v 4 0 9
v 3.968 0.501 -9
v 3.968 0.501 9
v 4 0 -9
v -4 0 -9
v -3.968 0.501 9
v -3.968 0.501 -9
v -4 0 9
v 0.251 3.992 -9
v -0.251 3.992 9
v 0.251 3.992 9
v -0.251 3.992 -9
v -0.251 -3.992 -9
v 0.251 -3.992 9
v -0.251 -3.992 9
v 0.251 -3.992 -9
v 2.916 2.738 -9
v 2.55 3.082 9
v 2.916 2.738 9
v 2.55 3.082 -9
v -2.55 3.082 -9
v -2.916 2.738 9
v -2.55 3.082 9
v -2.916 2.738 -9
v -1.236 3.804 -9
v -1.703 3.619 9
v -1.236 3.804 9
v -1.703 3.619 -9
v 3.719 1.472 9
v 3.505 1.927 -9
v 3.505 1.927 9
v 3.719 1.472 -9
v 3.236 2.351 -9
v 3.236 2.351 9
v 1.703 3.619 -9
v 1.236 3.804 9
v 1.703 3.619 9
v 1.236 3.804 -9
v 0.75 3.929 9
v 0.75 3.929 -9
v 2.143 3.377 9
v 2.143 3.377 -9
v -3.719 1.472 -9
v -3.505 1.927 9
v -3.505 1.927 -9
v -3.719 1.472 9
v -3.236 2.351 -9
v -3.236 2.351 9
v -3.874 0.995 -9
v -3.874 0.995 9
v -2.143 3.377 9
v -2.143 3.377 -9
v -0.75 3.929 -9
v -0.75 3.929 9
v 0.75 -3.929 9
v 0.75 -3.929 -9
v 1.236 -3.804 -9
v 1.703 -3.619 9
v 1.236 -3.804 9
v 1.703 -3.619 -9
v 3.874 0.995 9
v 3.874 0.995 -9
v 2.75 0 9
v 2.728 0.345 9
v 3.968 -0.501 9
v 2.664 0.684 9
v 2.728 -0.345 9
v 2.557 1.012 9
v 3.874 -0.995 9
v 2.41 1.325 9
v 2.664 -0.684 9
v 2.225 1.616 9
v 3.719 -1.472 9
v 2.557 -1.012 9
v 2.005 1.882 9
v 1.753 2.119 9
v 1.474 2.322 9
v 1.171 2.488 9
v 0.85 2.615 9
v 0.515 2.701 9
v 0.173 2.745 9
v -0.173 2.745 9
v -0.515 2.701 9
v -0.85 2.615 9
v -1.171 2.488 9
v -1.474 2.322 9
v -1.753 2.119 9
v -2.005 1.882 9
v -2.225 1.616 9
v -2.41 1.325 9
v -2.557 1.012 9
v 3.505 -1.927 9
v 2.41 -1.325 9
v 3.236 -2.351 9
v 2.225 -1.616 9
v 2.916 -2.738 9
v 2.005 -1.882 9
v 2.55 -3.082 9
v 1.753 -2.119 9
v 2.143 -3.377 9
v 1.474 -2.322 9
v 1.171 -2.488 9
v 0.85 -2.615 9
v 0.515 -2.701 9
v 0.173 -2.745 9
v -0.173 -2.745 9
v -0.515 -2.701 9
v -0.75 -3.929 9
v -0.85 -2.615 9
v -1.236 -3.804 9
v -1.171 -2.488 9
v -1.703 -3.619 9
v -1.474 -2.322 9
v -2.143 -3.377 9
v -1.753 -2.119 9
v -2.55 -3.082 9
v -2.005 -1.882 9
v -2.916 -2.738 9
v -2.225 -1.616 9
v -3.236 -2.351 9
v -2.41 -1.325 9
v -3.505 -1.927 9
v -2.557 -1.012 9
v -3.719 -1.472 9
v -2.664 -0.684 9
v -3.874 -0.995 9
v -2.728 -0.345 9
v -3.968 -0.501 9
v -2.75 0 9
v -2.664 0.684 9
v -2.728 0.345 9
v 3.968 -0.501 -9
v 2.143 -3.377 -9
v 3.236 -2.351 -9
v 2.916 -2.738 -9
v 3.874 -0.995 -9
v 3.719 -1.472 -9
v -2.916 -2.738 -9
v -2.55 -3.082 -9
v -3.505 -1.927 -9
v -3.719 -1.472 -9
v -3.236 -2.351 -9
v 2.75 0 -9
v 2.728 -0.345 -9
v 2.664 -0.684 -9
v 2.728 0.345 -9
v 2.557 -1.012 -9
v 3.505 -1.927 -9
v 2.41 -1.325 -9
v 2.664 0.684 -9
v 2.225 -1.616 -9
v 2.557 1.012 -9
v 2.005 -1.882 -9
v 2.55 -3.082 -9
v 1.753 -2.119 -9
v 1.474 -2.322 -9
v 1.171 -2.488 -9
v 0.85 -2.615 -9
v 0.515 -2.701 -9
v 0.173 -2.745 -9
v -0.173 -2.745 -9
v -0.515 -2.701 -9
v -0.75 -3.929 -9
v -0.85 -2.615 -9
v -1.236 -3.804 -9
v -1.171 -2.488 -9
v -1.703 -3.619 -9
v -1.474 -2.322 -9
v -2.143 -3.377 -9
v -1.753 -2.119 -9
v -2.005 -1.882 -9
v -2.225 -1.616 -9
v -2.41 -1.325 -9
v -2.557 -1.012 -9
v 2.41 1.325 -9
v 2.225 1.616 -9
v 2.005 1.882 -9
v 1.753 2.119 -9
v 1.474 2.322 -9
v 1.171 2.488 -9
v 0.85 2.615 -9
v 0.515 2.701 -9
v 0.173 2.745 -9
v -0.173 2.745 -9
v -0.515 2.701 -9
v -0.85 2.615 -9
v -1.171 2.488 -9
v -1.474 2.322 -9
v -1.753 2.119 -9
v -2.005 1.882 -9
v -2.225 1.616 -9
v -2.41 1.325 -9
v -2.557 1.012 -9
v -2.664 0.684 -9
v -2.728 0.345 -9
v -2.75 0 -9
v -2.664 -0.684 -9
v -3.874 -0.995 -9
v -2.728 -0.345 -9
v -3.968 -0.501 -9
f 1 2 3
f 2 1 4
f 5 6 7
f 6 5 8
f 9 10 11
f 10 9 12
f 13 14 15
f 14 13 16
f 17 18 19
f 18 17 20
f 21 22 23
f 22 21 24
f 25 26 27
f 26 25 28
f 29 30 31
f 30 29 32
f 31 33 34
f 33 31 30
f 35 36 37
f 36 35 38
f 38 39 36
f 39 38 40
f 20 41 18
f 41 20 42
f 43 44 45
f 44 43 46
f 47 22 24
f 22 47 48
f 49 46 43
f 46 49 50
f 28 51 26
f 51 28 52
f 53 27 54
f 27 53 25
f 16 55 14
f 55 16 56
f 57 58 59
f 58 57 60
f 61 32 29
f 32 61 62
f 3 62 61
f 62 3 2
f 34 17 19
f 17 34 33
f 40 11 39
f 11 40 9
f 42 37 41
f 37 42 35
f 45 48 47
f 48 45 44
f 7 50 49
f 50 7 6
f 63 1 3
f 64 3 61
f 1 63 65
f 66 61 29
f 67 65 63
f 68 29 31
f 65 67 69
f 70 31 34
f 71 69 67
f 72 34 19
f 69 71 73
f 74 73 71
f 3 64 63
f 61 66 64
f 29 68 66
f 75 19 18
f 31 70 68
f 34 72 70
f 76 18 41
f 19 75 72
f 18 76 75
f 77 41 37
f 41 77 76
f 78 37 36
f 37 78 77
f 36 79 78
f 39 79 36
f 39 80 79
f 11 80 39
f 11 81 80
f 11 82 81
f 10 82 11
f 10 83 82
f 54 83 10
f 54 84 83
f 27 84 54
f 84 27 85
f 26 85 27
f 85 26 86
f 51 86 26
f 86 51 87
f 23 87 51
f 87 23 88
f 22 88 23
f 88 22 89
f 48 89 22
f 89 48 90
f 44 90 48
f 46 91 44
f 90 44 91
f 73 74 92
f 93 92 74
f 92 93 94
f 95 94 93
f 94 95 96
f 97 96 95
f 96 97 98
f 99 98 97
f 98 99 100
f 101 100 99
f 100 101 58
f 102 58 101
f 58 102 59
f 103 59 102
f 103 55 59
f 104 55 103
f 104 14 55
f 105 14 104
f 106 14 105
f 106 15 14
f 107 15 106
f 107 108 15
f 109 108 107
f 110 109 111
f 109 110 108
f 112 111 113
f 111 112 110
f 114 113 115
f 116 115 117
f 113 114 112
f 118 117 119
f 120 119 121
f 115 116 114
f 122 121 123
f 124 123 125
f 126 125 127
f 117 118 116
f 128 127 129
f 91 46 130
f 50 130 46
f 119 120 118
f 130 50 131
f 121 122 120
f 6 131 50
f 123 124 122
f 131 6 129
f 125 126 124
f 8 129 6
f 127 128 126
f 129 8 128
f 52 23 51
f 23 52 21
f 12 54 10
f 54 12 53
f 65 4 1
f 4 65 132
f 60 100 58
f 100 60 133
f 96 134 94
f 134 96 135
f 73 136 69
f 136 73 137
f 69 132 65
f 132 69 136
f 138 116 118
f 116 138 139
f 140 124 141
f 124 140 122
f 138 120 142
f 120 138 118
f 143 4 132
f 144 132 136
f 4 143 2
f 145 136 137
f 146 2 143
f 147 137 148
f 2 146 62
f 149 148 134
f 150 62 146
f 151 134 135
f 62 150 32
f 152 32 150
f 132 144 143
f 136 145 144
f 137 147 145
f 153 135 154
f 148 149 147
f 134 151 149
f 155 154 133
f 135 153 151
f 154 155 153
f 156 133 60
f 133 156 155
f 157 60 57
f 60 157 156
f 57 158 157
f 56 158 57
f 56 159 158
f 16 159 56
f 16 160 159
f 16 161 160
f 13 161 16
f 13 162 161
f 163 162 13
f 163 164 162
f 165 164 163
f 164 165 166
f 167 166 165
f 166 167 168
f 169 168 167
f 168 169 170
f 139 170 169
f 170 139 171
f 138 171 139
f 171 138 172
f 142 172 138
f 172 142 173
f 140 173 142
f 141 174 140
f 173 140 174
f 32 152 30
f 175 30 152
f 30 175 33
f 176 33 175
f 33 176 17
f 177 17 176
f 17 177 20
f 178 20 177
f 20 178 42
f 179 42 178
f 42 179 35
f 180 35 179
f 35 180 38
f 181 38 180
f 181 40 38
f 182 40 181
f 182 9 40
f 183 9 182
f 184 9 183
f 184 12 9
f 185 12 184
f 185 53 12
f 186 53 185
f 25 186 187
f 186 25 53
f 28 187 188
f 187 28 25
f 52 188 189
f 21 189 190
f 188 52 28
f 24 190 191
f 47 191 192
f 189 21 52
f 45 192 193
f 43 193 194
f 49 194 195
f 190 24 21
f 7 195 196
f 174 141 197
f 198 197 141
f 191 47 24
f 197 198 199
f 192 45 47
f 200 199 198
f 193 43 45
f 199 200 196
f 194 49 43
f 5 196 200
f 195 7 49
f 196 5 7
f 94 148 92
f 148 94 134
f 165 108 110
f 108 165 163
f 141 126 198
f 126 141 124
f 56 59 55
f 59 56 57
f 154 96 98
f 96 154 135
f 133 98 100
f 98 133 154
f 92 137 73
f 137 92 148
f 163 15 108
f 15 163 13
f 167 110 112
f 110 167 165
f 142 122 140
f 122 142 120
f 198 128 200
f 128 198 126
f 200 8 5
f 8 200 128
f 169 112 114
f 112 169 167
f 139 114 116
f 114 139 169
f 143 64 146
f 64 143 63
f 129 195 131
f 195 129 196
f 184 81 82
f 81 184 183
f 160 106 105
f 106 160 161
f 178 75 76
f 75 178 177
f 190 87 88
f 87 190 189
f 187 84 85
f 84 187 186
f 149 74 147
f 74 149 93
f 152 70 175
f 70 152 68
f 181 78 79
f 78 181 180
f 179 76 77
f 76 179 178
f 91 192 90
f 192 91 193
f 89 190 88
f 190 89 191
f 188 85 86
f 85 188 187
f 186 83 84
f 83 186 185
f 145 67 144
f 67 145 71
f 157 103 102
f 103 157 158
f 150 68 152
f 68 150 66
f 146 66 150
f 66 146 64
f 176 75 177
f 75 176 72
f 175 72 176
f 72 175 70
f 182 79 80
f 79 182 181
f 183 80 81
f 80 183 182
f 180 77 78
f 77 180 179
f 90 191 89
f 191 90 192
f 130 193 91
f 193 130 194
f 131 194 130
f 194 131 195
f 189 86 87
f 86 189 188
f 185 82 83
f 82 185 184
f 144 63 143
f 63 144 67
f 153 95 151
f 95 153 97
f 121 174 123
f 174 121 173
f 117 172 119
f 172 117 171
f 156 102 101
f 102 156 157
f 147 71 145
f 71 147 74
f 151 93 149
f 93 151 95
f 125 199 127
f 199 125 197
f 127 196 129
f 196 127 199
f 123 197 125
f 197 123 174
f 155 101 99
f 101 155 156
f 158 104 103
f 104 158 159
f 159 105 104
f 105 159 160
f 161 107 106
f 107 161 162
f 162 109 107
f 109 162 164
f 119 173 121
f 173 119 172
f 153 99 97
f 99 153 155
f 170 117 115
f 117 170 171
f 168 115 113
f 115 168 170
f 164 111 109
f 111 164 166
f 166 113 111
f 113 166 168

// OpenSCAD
$fn = 50;


difference() {
	union() {
		translate(v = [0, 0, -9.0000000000]) {
			cylinder(h = 18, r = 4.0000000000);
		}
	}
	union() {
		translate(v = [0, 0, -100.0000000000]) {
			cylinder(h = 200, r = 2.7500000000);
		}
	}
}
